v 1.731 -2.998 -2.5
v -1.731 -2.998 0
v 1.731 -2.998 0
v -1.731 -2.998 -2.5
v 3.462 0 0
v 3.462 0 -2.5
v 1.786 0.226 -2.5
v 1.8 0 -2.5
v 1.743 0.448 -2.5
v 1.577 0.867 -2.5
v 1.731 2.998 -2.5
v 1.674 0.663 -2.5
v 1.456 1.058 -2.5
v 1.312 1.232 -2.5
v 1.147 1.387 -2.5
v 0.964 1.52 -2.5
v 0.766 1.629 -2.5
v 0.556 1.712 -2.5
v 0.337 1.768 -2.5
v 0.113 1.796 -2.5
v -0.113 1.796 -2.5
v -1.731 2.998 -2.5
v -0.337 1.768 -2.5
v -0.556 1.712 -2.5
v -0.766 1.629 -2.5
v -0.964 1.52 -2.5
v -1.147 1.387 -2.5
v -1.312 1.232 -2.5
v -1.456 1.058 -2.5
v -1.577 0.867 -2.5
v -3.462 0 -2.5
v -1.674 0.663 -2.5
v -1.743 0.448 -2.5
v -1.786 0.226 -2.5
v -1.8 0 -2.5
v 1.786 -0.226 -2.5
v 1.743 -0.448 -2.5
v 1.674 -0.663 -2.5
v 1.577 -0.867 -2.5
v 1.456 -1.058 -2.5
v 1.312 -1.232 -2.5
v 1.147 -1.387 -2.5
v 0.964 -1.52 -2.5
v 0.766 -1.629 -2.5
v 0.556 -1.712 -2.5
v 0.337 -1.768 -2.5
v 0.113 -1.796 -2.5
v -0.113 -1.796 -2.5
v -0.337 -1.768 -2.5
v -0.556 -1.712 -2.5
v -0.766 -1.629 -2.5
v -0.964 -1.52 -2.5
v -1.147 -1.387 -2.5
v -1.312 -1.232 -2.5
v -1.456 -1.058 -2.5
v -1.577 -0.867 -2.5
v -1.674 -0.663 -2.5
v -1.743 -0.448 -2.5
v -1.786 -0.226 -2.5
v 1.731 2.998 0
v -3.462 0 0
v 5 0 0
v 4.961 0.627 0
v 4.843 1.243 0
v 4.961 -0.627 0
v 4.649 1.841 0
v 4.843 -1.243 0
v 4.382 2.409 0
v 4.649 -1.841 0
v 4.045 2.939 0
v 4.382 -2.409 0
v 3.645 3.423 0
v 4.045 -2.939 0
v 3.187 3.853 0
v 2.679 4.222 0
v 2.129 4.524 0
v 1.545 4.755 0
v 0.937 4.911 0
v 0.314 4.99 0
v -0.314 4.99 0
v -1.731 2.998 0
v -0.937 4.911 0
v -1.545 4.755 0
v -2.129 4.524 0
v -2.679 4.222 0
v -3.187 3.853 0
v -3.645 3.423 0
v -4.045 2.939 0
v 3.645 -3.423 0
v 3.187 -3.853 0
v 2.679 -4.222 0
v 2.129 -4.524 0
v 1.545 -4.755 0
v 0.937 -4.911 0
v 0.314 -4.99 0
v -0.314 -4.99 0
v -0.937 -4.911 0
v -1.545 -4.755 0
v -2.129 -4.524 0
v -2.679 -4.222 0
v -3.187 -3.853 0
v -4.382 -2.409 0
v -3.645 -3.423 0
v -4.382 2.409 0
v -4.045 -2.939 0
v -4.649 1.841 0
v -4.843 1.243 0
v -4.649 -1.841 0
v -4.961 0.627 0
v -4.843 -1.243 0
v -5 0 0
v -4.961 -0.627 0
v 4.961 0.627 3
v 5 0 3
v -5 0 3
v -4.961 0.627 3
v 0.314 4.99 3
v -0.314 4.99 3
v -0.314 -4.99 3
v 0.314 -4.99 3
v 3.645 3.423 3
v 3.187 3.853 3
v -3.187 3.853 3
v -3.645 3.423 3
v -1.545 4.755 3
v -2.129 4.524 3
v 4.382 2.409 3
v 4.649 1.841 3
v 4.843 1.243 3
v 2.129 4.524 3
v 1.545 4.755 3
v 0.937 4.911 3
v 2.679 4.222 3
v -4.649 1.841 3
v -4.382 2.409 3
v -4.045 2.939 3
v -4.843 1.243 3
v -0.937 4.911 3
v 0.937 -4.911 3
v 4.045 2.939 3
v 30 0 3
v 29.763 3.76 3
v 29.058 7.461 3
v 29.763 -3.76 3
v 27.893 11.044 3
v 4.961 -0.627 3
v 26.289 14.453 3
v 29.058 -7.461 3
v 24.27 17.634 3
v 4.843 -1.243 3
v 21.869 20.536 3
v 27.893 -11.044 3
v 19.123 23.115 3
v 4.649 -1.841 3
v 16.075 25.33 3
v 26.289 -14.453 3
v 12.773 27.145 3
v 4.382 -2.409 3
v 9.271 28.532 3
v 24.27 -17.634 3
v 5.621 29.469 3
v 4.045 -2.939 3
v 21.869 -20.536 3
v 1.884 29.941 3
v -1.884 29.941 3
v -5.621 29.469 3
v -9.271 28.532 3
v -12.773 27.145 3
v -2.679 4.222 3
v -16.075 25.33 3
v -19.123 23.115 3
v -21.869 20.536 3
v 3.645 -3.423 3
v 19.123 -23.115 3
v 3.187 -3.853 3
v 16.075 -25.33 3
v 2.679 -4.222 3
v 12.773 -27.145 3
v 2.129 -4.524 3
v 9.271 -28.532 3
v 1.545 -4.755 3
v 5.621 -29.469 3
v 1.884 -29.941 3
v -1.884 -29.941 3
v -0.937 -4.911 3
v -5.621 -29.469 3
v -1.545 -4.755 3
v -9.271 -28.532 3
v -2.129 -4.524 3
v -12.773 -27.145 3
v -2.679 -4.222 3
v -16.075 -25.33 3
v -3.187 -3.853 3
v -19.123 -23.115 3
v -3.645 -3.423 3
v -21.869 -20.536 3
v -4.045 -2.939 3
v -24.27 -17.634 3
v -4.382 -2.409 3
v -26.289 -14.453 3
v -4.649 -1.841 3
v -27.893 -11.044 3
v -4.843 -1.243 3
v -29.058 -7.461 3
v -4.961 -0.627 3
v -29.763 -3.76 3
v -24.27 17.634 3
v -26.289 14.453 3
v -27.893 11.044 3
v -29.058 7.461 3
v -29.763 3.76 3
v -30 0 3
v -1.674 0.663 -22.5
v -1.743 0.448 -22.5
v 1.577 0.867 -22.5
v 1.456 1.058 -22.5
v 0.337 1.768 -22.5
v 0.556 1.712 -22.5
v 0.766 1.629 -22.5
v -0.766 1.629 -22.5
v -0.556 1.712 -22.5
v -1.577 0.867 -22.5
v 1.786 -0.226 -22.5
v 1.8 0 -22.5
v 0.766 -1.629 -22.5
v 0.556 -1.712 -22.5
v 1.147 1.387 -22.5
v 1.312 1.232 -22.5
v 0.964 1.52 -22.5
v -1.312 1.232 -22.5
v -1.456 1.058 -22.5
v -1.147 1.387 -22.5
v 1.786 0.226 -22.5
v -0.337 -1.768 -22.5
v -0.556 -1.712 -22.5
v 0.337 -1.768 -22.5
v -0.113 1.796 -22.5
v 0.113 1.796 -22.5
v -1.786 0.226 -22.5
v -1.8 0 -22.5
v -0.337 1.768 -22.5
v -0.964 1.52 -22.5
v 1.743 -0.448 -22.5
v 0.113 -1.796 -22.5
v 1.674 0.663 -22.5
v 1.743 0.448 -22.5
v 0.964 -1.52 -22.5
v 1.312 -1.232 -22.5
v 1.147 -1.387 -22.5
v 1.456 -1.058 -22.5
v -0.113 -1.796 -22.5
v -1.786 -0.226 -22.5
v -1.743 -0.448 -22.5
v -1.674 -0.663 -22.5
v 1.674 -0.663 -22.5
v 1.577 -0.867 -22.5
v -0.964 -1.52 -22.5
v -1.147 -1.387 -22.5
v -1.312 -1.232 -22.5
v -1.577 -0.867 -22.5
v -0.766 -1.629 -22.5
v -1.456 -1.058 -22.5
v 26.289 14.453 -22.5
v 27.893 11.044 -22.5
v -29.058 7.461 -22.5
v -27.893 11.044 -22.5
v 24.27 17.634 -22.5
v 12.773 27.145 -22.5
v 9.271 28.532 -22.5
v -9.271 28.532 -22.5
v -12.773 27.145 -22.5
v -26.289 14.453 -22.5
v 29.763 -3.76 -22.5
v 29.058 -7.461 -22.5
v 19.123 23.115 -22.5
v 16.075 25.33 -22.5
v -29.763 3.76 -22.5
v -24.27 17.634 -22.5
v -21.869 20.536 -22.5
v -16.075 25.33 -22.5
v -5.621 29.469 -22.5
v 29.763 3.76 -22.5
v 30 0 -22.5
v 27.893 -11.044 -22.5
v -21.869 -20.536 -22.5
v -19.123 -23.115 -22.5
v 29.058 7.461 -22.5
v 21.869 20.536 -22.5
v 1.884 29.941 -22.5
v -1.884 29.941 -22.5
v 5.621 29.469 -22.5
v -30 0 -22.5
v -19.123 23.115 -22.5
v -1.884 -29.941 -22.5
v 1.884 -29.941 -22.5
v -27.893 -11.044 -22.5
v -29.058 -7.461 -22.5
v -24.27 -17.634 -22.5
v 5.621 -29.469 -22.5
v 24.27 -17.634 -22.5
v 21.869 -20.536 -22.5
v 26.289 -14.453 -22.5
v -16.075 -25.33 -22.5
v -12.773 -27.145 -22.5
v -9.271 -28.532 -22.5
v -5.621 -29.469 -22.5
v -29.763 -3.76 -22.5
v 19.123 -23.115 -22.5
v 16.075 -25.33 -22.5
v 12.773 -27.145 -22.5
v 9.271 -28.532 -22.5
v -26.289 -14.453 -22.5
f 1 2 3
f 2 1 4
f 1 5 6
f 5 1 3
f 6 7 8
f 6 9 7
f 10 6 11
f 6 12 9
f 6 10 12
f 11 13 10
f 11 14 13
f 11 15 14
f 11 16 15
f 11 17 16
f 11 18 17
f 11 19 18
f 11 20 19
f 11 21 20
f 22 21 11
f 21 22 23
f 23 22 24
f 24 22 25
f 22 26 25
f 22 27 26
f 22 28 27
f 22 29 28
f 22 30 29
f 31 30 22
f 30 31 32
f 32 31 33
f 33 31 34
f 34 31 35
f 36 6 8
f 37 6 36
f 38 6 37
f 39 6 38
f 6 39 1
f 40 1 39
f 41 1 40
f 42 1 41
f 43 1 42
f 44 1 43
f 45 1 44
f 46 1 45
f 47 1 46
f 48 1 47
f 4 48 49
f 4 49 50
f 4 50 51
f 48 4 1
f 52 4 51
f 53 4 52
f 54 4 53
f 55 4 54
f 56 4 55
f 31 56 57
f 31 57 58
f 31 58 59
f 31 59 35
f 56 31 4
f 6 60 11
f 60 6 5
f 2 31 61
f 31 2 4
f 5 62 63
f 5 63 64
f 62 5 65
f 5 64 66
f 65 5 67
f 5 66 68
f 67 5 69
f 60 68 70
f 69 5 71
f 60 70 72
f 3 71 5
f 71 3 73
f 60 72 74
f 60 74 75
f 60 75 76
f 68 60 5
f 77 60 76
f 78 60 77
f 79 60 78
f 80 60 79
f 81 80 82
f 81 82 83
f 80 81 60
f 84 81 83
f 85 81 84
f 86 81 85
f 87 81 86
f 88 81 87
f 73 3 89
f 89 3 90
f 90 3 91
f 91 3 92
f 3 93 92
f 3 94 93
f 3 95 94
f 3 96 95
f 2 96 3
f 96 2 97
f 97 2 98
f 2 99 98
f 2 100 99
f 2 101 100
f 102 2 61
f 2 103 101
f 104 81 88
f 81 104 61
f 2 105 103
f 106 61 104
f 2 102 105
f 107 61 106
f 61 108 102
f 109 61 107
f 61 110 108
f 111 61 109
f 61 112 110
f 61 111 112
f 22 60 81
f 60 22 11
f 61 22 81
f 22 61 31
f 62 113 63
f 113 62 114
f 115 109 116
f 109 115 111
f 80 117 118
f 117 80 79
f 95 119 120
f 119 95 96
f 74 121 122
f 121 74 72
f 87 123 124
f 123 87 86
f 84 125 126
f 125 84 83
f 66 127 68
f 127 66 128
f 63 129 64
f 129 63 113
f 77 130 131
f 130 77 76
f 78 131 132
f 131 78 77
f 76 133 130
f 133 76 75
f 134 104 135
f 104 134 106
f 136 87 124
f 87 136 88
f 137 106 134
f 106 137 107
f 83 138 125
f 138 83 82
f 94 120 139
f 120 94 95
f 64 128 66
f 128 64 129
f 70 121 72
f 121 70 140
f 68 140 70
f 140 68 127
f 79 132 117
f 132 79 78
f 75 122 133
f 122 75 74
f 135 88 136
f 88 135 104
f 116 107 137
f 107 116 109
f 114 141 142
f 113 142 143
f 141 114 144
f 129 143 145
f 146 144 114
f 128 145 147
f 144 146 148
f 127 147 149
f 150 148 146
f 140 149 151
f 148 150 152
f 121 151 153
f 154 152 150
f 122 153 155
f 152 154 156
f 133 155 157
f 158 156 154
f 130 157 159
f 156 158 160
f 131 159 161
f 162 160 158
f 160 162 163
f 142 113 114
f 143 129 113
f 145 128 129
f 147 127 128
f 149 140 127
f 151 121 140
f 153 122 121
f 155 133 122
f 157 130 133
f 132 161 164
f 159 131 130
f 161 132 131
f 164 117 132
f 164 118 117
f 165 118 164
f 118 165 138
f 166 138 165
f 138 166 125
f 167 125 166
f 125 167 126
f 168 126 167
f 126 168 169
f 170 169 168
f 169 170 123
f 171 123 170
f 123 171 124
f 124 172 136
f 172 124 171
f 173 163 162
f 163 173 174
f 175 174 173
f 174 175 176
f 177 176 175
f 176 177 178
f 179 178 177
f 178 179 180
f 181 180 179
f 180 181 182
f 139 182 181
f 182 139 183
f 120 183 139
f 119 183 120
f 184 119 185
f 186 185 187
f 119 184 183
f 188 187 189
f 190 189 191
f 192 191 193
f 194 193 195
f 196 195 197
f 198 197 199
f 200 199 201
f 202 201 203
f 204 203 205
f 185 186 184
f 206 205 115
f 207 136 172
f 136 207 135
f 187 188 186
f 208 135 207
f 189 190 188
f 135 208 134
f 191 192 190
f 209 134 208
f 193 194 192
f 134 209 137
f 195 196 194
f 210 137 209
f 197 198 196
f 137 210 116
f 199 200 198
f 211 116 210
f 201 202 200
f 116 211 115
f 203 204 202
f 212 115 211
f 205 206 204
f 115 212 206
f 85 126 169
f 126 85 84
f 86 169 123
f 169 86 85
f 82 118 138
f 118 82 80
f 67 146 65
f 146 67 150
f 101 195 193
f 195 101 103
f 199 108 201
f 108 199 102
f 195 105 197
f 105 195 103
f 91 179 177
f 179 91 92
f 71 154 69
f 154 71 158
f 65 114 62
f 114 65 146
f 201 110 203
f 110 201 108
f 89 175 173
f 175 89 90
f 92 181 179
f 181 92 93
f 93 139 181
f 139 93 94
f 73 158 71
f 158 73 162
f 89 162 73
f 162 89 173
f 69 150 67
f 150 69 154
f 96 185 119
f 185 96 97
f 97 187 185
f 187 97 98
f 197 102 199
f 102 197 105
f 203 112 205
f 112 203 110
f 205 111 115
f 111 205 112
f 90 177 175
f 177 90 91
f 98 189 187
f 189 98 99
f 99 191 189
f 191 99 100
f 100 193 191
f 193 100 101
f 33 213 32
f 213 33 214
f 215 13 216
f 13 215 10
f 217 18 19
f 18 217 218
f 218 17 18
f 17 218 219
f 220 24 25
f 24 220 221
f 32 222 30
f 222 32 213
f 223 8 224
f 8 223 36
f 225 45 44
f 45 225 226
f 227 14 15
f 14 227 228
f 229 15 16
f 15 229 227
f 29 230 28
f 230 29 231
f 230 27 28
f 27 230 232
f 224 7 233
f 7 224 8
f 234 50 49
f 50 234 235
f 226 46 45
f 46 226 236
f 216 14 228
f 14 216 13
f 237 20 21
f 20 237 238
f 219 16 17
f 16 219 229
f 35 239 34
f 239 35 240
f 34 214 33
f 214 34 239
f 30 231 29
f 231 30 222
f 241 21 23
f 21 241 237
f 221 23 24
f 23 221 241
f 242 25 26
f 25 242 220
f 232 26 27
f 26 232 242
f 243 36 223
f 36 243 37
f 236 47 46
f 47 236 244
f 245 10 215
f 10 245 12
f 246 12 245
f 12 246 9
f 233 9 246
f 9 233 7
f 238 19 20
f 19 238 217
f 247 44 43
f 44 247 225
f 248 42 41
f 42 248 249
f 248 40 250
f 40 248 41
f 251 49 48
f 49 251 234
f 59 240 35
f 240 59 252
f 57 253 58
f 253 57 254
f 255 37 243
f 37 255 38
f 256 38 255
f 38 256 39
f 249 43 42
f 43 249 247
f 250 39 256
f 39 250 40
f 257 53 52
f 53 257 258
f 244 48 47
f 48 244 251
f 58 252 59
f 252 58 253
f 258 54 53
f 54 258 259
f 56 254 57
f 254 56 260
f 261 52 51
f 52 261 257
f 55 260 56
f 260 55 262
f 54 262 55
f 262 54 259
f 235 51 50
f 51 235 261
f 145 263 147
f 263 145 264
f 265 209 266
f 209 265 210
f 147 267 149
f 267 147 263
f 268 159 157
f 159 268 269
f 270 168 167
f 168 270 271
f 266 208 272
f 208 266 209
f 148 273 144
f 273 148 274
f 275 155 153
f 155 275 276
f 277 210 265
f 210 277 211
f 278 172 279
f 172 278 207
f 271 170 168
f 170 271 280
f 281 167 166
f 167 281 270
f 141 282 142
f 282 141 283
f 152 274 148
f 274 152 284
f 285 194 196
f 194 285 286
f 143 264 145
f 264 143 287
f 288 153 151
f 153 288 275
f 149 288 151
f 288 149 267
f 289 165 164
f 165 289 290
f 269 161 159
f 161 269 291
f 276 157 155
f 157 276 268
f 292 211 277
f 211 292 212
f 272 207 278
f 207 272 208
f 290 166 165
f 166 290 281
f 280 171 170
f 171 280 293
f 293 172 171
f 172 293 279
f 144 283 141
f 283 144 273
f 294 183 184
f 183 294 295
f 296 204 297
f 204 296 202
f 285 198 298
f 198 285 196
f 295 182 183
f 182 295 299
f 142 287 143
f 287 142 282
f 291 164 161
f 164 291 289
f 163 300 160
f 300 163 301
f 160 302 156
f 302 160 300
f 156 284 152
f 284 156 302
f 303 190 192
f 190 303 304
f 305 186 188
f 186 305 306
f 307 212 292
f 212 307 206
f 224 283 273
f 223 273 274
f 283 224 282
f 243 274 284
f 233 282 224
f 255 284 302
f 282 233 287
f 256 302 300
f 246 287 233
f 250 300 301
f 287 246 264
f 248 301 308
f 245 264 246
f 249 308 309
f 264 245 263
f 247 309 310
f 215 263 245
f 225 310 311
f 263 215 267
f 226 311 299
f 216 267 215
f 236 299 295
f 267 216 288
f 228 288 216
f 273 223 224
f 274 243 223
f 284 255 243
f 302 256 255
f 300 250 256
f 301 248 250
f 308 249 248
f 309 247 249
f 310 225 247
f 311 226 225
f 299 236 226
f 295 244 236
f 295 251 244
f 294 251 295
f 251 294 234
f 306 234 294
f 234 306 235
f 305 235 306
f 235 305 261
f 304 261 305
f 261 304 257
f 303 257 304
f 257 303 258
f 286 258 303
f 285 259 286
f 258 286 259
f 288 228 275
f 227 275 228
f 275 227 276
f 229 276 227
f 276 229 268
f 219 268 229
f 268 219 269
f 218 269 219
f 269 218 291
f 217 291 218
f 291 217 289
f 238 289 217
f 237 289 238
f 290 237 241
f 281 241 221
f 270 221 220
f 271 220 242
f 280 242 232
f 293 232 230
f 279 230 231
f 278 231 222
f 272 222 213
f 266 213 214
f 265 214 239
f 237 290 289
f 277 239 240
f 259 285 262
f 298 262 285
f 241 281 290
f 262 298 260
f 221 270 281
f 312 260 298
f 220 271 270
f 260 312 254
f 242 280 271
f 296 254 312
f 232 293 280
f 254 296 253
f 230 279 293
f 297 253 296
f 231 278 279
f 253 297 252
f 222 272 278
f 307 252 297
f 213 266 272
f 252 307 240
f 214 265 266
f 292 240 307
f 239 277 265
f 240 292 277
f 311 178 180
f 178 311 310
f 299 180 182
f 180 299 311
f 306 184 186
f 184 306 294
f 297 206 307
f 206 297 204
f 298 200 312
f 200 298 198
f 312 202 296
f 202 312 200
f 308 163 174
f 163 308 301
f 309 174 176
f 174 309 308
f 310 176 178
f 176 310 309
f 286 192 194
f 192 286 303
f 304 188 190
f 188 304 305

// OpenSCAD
$fn = 50;


difference() {
	union() {
		translate(v = [0, 0, -22.5000000000]) {
			cylinder(h = 25.5000000000, r = 30.0000000000);
		}
	}
	union() {
		translate(v = [0, 0, 0]) {
			rotate(a = [0, 0, 0]) {
				difference() {
					union() {
						translate(v = [0, 0, -2.5000000000]) {
							linear_extrude(height = 2.5000000000) {
								polygon(points = [[3.4620000000, 0.0000000000], [1.7310000000, 2.9981799479], [-1.7310000000, 2.9981799479], [-3.4620000000, 0.0000000000], [-1.7310000000, -2.9981799479], [1.7310000000, -2.9981799479]]);
							}
						}
					}
					union();
				}
			}
		}
		#cylinder(h = 3, r = 5.0000000000);
		#translate(v = [0, 0, -100.0000000000]) {
			cylinder(h = 200, r = 1.8000000000);
		}
	}
}
